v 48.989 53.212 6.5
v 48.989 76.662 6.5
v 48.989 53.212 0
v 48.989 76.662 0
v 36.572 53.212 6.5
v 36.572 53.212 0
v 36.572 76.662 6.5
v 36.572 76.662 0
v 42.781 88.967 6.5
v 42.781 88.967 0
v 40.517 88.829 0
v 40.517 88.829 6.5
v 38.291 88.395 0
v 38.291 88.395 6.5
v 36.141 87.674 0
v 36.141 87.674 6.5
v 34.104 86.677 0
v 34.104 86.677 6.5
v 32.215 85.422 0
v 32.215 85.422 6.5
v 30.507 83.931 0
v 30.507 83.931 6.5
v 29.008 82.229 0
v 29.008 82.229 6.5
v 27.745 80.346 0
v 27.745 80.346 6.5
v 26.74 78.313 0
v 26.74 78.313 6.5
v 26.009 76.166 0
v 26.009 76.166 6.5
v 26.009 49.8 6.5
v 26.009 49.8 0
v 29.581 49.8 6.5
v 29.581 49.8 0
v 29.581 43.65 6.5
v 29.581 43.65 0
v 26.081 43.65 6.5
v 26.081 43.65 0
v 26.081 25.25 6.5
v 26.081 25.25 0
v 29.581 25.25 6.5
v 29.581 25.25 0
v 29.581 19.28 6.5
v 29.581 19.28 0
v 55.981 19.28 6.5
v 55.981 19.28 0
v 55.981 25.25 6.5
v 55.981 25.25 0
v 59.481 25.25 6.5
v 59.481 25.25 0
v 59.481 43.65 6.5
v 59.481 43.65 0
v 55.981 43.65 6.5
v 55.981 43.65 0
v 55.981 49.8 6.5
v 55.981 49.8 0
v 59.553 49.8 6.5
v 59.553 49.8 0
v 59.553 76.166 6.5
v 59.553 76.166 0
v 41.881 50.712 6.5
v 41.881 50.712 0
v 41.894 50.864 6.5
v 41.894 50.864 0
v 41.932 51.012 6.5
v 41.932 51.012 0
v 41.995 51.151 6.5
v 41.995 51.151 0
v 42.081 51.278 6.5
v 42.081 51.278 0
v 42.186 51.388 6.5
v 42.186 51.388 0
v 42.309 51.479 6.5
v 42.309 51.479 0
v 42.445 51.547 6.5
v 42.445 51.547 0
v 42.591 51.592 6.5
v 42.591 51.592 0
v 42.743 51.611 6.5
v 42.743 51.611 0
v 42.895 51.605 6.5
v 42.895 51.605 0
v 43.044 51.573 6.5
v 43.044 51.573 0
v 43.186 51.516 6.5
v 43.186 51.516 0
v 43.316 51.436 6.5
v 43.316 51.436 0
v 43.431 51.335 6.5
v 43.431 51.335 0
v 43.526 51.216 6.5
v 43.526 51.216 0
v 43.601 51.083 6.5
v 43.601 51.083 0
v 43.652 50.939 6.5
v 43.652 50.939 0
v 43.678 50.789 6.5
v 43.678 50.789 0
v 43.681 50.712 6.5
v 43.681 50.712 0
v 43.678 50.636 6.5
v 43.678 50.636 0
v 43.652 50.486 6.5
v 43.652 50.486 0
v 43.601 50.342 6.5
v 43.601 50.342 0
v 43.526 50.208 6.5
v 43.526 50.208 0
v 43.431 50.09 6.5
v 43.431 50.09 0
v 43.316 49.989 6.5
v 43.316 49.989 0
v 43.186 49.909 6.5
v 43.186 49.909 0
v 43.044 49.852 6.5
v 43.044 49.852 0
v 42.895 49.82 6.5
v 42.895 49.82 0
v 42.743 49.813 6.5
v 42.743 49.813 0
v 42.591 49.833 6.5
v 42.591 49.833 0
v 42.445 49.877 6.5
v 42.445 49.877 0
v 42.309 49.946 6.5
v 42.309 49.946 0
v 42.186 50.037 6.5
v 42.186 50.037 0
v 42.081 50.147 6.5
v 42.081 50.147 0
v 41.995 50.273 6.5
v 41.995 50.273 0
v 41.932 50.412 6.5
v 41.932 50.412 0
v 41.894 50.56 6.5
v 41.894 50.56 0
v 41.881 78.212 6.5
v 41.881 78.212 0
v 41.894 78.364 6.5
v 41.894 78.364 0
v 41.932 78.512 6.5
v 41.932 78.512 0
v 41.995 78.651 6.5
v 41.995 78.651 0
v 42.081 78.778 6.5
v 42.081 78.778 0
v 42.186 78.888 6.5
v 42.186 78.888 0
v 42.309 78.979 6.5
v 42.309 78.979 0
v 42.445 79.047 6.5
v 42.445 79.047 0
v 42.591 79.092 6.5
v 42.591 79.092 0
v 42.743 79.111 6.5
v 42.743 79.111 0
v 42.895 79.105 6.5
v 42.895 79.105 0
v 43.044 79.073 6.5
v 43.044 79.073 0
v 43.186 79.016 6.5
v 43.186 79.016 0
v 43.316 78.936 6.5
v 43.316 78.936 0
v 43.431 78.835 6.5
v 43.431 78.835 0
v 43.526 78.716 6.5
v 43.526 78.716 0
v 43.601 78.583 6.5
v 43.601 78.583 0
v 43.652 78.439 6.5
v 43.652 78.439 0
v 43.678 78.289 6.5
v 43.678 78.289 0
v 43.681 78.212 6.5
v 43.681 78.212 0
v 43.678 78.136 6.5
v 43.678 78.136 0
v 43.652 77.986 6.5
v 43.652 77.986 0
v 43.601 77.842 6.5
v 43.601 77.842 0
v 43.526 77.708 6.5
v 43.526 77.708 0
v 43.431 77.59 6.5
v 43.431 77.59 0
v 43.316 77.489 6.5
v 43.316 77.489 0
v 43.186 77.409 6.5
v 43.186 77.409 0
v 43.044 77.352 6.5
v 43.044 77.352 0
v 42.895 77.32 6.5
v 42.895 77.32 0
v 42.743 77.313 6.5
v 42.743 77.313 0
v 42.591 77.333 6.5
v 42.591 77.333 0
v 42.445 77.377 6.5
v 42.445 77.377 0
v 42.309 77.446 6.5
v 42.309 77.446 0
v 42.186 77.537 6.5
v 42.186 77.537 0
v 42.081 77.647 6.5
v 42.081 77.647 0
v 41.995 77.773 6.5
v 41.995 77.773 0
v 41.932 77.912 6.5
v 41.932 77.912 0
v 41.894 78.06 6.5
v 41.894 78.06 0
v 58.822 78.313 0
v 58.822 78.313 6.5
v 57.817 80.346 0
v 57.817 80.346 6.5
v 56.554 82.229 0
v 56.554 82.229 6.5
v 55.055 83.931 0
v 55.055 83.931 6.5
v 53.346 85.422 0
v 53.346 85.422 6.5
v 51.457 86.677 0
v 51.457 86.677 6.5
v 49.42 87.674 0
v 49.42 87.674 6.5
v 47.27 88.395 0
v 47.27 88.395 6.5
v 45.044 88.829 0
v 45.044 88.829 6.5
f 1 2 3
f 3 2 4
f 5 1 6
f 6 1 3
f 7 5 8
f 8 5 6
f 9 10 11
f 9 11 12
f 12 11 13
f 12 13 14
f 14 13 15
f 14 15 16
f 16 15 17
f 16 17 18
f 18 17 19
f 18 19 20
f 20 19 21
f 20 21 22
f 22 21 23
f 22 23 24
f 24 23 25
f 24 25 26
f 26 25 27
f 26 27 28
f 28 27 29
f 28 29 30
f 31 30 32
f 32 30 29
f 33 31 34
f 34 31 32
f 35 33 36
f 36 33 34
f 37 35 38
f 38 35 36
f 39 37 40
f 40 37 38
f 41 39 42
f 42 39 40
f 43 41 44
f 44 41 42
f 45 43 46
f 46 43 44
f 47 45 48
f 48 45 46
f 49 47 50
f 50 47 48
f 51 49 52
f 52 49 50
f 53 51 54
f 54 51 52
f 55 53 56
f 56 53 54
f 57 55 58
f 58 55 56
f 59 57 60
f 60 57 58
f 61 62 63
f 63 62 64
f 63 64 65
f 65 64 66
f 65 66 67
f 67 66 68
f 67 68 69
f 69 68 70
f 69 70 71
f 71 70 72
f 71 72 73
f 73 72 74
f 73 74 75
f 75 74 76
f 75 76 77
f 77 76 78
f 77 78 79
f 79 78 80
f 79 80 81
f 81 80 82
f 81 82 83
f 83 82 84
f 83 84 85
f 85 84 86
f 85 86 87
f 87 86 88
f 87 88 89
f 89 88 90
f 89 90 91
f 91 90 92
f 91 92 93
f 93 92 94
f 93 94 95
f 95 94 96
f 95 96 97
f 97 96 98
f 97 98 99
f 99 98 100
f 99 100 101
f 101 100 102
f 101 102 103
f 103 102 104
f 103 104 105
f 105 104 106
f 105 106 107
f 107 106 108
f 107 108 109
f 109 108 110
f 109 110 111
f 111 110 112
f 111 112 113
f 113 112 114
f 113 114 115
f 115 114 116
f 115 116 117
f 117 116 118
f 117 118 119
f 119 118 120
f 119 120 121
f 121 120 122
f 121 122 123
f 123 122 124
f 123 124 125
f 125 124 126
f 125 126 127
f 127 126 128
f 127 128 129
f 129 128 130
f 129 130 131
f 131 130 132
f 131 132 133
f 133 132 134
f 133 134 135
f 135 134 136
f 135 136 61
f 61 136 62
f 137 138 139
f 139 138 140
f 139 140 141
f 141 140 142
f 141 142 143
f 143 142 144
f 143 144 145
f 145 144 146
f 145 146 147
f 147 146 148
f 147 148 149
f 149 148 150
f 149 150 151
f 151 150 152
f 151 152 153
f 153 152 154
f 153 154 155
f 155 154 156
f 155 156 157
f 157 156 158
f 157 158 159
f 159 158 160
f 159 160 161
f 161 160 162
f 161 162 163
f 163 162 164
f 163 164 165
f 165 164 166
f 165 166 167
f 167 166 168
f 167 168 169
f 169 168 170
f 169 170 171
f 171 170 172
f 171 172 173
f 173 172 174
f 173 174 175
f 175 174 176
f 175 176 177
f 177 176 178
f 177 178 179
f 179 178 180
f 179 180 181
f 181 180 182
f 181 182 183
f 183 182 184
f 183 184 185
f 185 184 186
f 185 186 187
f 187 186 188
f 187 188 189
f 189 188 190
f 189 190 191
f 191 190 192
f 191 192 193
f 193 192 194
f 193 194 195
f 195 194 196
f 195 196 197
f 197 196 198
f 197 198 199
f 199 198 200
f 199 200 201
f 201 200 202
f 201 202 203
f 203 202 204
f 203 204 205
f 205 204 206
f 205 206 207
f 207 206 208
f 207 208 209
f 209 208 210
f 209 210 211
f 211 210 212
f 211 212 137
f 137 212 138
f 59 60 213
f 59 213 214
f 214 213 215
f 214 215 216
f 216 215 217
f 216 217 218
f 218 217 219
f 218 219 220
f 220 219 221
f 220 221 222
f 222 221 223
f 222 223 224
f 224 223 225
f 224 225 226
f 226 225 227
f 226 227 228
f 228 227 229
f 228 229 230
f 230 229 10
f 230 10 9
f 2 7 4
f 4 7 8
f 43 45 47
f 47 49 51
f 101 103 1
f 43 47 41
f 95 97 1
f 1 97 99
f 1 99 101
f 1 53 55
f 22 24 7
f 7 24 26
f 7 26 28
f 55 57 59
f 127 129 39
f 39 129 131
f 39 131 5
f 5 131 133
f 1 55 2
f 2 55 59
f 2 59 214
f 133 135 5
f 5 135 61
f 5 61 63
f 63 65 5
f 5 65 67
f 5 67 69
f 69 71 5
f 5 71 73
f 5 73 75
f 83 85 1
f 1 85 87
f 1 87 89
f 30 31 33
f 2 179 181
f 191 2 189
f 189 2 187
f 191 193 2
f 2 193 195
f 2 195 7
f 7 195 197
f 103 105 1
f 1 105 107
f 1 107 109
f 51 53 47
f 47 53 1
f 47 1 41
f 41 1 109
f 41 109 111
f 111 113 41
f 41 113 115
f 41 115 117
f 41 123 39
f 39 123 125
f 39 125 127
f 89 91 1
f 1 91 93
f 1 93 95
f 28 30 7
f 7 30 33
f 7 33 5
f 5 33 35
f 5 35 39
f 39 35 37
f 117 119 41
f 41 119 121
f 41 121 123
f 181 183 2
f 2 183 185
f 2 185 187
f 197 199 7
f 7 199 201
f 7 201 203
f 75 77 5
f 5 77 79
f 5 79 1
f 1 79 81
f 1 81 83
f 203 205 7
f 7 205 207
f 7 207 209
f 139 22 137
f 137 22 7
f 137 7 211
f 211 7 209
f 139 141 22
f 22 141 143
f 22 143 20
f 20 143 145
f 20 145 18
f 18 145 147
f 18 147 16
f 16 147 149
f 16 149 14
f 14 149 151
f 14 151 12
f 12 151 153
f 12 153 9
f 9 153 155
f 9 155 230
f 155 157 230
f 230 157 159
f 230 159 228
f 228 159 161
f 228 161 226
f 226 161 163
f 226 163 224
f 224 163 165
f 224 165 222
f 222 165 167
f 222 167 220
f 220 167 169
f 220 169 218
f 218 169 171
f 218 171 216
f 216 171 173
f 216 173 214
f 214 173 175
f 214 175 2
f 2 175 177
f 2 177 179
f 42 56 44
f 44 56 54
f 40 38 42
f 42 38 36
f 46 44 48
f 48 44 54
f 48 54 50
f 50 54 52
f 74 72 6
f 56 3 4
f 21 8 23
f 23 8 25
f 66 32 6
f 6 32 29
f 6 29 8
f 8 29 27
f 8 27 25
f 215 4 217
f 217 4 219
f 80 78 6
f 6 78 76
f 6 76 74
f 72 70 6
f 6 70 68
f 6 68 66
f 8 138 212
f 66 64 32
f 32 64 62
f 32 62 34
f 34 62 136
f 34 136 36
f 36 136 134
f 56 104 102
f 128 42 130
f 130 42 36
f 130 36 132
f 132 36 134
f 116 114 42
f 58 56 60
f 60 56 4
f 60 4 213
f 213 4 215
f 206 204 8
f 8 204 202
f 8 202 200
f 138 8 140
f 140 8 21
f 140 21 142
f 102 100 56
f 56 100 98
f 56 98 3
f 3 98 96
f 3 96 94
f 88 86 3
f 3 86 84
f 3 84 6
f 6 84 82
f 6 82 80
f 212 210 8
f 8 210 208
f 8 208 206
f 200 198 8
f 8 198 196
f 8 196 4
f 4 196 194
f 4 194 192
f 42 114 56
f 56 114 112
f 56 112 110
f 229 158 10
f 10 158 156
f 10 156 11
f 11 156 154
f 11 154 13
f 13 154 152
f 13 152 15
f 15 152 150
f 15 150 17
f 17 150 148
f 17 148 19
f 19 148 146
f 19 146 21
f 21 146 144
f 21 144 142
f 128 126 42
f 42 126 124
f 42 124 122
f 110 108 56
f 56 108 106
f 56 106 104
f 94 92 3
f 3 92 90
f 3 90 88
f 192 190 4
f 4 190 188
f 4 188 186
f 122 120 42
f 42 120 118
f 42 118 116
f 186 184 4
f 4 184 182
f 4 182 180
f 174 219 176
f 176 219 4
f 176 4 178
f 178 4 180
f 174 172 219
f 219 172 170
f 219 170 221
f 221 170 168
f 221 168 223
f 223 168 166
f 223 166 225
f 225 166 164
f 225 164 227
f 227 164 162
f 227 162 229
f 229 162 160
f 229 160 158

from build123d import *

# Parameters (mm, degrees)
SKETCH3_R           = 0.9
SKETCH3_W           = 12.417
SKETCH3_H           = 23.449530758
BOSS_EXTRUDE6_DEPTH = 6.5


with BuildPart() as part:
    # Sketch3 → Boss-Extrude6 (new body)
    with BuildSketch(Plane.XY):
        with BuildLine():
            Line((26.008786765, 76.166270115), (26.008786765, 49.799855834))
            Line((26.008786765, 49.799855834), (29.580786765, 49.799855834))
            Line((29.580786765, 49.799855834), (29.580786765, 43.649855834))
            Line((29.580786765, 43.649855834), (26.080786765, 43.649855834))
            Line((26.080786765, 43.649855834), (26.080786765, 25.249855834))
            Line((26.080786765, 25.249855834), (29.580786765, 25.249855834))
            Line((29.580786765, 25.249855834), (29.580786765, 25.206855834))
            Line((29.580786765, 25.206855834), (29.580786765, 19.279855834))
            Line((29.580786765, 19.279855834), (55.980786765, 19.279855834))
            Line((55.980786765, 19.279855834), (55.980786765, 25.249855834))
            Line((55.980786765, 25.249855834), (59.480786765, 25.249855834))
            Line((59.480786765, 25.249855834), (59.480786765, 43.649855834))
            Line((59.480786765, 43.649855834), (55.980786765, 43.649855834))
            Line((55.980786765, 43.649855834), (55.980786765, 49.799855834))
            Line((55.980786765, 49.799855834), (59.552786765, 49.799855834))
            Line((59.552786765, 49.799855834), (59.552786765, 76.166270115))
            ThreePointArc((59.552786765, 76.166270115), (53.346414701, 85.422492969), (42.780786765, 88.967097604))
            ThreePointArc((42.780786765, 88.967097604), (32.215158829, 85.422492969), (26.008786765, 76.166270115))
        make_face()
        with Locations((42.780786765, 50.712301369)):
            Circle(SKETCH3_R, mode=Mode.SUBTRACT)
        with Locations((42.780786765, 78.212301369)):
            Circle(SKETCH3_R, mode=Mode.SUBTRACT)
        with Locations((42.780786765, 64.937066748)):
            Rectangle(SKETCH3_W, SKETCH3_H, mode=Mode.SUBTRACT)
    extrude(amount=BOSS_EXTRUDE6_DEPTH)


solid = part.part
